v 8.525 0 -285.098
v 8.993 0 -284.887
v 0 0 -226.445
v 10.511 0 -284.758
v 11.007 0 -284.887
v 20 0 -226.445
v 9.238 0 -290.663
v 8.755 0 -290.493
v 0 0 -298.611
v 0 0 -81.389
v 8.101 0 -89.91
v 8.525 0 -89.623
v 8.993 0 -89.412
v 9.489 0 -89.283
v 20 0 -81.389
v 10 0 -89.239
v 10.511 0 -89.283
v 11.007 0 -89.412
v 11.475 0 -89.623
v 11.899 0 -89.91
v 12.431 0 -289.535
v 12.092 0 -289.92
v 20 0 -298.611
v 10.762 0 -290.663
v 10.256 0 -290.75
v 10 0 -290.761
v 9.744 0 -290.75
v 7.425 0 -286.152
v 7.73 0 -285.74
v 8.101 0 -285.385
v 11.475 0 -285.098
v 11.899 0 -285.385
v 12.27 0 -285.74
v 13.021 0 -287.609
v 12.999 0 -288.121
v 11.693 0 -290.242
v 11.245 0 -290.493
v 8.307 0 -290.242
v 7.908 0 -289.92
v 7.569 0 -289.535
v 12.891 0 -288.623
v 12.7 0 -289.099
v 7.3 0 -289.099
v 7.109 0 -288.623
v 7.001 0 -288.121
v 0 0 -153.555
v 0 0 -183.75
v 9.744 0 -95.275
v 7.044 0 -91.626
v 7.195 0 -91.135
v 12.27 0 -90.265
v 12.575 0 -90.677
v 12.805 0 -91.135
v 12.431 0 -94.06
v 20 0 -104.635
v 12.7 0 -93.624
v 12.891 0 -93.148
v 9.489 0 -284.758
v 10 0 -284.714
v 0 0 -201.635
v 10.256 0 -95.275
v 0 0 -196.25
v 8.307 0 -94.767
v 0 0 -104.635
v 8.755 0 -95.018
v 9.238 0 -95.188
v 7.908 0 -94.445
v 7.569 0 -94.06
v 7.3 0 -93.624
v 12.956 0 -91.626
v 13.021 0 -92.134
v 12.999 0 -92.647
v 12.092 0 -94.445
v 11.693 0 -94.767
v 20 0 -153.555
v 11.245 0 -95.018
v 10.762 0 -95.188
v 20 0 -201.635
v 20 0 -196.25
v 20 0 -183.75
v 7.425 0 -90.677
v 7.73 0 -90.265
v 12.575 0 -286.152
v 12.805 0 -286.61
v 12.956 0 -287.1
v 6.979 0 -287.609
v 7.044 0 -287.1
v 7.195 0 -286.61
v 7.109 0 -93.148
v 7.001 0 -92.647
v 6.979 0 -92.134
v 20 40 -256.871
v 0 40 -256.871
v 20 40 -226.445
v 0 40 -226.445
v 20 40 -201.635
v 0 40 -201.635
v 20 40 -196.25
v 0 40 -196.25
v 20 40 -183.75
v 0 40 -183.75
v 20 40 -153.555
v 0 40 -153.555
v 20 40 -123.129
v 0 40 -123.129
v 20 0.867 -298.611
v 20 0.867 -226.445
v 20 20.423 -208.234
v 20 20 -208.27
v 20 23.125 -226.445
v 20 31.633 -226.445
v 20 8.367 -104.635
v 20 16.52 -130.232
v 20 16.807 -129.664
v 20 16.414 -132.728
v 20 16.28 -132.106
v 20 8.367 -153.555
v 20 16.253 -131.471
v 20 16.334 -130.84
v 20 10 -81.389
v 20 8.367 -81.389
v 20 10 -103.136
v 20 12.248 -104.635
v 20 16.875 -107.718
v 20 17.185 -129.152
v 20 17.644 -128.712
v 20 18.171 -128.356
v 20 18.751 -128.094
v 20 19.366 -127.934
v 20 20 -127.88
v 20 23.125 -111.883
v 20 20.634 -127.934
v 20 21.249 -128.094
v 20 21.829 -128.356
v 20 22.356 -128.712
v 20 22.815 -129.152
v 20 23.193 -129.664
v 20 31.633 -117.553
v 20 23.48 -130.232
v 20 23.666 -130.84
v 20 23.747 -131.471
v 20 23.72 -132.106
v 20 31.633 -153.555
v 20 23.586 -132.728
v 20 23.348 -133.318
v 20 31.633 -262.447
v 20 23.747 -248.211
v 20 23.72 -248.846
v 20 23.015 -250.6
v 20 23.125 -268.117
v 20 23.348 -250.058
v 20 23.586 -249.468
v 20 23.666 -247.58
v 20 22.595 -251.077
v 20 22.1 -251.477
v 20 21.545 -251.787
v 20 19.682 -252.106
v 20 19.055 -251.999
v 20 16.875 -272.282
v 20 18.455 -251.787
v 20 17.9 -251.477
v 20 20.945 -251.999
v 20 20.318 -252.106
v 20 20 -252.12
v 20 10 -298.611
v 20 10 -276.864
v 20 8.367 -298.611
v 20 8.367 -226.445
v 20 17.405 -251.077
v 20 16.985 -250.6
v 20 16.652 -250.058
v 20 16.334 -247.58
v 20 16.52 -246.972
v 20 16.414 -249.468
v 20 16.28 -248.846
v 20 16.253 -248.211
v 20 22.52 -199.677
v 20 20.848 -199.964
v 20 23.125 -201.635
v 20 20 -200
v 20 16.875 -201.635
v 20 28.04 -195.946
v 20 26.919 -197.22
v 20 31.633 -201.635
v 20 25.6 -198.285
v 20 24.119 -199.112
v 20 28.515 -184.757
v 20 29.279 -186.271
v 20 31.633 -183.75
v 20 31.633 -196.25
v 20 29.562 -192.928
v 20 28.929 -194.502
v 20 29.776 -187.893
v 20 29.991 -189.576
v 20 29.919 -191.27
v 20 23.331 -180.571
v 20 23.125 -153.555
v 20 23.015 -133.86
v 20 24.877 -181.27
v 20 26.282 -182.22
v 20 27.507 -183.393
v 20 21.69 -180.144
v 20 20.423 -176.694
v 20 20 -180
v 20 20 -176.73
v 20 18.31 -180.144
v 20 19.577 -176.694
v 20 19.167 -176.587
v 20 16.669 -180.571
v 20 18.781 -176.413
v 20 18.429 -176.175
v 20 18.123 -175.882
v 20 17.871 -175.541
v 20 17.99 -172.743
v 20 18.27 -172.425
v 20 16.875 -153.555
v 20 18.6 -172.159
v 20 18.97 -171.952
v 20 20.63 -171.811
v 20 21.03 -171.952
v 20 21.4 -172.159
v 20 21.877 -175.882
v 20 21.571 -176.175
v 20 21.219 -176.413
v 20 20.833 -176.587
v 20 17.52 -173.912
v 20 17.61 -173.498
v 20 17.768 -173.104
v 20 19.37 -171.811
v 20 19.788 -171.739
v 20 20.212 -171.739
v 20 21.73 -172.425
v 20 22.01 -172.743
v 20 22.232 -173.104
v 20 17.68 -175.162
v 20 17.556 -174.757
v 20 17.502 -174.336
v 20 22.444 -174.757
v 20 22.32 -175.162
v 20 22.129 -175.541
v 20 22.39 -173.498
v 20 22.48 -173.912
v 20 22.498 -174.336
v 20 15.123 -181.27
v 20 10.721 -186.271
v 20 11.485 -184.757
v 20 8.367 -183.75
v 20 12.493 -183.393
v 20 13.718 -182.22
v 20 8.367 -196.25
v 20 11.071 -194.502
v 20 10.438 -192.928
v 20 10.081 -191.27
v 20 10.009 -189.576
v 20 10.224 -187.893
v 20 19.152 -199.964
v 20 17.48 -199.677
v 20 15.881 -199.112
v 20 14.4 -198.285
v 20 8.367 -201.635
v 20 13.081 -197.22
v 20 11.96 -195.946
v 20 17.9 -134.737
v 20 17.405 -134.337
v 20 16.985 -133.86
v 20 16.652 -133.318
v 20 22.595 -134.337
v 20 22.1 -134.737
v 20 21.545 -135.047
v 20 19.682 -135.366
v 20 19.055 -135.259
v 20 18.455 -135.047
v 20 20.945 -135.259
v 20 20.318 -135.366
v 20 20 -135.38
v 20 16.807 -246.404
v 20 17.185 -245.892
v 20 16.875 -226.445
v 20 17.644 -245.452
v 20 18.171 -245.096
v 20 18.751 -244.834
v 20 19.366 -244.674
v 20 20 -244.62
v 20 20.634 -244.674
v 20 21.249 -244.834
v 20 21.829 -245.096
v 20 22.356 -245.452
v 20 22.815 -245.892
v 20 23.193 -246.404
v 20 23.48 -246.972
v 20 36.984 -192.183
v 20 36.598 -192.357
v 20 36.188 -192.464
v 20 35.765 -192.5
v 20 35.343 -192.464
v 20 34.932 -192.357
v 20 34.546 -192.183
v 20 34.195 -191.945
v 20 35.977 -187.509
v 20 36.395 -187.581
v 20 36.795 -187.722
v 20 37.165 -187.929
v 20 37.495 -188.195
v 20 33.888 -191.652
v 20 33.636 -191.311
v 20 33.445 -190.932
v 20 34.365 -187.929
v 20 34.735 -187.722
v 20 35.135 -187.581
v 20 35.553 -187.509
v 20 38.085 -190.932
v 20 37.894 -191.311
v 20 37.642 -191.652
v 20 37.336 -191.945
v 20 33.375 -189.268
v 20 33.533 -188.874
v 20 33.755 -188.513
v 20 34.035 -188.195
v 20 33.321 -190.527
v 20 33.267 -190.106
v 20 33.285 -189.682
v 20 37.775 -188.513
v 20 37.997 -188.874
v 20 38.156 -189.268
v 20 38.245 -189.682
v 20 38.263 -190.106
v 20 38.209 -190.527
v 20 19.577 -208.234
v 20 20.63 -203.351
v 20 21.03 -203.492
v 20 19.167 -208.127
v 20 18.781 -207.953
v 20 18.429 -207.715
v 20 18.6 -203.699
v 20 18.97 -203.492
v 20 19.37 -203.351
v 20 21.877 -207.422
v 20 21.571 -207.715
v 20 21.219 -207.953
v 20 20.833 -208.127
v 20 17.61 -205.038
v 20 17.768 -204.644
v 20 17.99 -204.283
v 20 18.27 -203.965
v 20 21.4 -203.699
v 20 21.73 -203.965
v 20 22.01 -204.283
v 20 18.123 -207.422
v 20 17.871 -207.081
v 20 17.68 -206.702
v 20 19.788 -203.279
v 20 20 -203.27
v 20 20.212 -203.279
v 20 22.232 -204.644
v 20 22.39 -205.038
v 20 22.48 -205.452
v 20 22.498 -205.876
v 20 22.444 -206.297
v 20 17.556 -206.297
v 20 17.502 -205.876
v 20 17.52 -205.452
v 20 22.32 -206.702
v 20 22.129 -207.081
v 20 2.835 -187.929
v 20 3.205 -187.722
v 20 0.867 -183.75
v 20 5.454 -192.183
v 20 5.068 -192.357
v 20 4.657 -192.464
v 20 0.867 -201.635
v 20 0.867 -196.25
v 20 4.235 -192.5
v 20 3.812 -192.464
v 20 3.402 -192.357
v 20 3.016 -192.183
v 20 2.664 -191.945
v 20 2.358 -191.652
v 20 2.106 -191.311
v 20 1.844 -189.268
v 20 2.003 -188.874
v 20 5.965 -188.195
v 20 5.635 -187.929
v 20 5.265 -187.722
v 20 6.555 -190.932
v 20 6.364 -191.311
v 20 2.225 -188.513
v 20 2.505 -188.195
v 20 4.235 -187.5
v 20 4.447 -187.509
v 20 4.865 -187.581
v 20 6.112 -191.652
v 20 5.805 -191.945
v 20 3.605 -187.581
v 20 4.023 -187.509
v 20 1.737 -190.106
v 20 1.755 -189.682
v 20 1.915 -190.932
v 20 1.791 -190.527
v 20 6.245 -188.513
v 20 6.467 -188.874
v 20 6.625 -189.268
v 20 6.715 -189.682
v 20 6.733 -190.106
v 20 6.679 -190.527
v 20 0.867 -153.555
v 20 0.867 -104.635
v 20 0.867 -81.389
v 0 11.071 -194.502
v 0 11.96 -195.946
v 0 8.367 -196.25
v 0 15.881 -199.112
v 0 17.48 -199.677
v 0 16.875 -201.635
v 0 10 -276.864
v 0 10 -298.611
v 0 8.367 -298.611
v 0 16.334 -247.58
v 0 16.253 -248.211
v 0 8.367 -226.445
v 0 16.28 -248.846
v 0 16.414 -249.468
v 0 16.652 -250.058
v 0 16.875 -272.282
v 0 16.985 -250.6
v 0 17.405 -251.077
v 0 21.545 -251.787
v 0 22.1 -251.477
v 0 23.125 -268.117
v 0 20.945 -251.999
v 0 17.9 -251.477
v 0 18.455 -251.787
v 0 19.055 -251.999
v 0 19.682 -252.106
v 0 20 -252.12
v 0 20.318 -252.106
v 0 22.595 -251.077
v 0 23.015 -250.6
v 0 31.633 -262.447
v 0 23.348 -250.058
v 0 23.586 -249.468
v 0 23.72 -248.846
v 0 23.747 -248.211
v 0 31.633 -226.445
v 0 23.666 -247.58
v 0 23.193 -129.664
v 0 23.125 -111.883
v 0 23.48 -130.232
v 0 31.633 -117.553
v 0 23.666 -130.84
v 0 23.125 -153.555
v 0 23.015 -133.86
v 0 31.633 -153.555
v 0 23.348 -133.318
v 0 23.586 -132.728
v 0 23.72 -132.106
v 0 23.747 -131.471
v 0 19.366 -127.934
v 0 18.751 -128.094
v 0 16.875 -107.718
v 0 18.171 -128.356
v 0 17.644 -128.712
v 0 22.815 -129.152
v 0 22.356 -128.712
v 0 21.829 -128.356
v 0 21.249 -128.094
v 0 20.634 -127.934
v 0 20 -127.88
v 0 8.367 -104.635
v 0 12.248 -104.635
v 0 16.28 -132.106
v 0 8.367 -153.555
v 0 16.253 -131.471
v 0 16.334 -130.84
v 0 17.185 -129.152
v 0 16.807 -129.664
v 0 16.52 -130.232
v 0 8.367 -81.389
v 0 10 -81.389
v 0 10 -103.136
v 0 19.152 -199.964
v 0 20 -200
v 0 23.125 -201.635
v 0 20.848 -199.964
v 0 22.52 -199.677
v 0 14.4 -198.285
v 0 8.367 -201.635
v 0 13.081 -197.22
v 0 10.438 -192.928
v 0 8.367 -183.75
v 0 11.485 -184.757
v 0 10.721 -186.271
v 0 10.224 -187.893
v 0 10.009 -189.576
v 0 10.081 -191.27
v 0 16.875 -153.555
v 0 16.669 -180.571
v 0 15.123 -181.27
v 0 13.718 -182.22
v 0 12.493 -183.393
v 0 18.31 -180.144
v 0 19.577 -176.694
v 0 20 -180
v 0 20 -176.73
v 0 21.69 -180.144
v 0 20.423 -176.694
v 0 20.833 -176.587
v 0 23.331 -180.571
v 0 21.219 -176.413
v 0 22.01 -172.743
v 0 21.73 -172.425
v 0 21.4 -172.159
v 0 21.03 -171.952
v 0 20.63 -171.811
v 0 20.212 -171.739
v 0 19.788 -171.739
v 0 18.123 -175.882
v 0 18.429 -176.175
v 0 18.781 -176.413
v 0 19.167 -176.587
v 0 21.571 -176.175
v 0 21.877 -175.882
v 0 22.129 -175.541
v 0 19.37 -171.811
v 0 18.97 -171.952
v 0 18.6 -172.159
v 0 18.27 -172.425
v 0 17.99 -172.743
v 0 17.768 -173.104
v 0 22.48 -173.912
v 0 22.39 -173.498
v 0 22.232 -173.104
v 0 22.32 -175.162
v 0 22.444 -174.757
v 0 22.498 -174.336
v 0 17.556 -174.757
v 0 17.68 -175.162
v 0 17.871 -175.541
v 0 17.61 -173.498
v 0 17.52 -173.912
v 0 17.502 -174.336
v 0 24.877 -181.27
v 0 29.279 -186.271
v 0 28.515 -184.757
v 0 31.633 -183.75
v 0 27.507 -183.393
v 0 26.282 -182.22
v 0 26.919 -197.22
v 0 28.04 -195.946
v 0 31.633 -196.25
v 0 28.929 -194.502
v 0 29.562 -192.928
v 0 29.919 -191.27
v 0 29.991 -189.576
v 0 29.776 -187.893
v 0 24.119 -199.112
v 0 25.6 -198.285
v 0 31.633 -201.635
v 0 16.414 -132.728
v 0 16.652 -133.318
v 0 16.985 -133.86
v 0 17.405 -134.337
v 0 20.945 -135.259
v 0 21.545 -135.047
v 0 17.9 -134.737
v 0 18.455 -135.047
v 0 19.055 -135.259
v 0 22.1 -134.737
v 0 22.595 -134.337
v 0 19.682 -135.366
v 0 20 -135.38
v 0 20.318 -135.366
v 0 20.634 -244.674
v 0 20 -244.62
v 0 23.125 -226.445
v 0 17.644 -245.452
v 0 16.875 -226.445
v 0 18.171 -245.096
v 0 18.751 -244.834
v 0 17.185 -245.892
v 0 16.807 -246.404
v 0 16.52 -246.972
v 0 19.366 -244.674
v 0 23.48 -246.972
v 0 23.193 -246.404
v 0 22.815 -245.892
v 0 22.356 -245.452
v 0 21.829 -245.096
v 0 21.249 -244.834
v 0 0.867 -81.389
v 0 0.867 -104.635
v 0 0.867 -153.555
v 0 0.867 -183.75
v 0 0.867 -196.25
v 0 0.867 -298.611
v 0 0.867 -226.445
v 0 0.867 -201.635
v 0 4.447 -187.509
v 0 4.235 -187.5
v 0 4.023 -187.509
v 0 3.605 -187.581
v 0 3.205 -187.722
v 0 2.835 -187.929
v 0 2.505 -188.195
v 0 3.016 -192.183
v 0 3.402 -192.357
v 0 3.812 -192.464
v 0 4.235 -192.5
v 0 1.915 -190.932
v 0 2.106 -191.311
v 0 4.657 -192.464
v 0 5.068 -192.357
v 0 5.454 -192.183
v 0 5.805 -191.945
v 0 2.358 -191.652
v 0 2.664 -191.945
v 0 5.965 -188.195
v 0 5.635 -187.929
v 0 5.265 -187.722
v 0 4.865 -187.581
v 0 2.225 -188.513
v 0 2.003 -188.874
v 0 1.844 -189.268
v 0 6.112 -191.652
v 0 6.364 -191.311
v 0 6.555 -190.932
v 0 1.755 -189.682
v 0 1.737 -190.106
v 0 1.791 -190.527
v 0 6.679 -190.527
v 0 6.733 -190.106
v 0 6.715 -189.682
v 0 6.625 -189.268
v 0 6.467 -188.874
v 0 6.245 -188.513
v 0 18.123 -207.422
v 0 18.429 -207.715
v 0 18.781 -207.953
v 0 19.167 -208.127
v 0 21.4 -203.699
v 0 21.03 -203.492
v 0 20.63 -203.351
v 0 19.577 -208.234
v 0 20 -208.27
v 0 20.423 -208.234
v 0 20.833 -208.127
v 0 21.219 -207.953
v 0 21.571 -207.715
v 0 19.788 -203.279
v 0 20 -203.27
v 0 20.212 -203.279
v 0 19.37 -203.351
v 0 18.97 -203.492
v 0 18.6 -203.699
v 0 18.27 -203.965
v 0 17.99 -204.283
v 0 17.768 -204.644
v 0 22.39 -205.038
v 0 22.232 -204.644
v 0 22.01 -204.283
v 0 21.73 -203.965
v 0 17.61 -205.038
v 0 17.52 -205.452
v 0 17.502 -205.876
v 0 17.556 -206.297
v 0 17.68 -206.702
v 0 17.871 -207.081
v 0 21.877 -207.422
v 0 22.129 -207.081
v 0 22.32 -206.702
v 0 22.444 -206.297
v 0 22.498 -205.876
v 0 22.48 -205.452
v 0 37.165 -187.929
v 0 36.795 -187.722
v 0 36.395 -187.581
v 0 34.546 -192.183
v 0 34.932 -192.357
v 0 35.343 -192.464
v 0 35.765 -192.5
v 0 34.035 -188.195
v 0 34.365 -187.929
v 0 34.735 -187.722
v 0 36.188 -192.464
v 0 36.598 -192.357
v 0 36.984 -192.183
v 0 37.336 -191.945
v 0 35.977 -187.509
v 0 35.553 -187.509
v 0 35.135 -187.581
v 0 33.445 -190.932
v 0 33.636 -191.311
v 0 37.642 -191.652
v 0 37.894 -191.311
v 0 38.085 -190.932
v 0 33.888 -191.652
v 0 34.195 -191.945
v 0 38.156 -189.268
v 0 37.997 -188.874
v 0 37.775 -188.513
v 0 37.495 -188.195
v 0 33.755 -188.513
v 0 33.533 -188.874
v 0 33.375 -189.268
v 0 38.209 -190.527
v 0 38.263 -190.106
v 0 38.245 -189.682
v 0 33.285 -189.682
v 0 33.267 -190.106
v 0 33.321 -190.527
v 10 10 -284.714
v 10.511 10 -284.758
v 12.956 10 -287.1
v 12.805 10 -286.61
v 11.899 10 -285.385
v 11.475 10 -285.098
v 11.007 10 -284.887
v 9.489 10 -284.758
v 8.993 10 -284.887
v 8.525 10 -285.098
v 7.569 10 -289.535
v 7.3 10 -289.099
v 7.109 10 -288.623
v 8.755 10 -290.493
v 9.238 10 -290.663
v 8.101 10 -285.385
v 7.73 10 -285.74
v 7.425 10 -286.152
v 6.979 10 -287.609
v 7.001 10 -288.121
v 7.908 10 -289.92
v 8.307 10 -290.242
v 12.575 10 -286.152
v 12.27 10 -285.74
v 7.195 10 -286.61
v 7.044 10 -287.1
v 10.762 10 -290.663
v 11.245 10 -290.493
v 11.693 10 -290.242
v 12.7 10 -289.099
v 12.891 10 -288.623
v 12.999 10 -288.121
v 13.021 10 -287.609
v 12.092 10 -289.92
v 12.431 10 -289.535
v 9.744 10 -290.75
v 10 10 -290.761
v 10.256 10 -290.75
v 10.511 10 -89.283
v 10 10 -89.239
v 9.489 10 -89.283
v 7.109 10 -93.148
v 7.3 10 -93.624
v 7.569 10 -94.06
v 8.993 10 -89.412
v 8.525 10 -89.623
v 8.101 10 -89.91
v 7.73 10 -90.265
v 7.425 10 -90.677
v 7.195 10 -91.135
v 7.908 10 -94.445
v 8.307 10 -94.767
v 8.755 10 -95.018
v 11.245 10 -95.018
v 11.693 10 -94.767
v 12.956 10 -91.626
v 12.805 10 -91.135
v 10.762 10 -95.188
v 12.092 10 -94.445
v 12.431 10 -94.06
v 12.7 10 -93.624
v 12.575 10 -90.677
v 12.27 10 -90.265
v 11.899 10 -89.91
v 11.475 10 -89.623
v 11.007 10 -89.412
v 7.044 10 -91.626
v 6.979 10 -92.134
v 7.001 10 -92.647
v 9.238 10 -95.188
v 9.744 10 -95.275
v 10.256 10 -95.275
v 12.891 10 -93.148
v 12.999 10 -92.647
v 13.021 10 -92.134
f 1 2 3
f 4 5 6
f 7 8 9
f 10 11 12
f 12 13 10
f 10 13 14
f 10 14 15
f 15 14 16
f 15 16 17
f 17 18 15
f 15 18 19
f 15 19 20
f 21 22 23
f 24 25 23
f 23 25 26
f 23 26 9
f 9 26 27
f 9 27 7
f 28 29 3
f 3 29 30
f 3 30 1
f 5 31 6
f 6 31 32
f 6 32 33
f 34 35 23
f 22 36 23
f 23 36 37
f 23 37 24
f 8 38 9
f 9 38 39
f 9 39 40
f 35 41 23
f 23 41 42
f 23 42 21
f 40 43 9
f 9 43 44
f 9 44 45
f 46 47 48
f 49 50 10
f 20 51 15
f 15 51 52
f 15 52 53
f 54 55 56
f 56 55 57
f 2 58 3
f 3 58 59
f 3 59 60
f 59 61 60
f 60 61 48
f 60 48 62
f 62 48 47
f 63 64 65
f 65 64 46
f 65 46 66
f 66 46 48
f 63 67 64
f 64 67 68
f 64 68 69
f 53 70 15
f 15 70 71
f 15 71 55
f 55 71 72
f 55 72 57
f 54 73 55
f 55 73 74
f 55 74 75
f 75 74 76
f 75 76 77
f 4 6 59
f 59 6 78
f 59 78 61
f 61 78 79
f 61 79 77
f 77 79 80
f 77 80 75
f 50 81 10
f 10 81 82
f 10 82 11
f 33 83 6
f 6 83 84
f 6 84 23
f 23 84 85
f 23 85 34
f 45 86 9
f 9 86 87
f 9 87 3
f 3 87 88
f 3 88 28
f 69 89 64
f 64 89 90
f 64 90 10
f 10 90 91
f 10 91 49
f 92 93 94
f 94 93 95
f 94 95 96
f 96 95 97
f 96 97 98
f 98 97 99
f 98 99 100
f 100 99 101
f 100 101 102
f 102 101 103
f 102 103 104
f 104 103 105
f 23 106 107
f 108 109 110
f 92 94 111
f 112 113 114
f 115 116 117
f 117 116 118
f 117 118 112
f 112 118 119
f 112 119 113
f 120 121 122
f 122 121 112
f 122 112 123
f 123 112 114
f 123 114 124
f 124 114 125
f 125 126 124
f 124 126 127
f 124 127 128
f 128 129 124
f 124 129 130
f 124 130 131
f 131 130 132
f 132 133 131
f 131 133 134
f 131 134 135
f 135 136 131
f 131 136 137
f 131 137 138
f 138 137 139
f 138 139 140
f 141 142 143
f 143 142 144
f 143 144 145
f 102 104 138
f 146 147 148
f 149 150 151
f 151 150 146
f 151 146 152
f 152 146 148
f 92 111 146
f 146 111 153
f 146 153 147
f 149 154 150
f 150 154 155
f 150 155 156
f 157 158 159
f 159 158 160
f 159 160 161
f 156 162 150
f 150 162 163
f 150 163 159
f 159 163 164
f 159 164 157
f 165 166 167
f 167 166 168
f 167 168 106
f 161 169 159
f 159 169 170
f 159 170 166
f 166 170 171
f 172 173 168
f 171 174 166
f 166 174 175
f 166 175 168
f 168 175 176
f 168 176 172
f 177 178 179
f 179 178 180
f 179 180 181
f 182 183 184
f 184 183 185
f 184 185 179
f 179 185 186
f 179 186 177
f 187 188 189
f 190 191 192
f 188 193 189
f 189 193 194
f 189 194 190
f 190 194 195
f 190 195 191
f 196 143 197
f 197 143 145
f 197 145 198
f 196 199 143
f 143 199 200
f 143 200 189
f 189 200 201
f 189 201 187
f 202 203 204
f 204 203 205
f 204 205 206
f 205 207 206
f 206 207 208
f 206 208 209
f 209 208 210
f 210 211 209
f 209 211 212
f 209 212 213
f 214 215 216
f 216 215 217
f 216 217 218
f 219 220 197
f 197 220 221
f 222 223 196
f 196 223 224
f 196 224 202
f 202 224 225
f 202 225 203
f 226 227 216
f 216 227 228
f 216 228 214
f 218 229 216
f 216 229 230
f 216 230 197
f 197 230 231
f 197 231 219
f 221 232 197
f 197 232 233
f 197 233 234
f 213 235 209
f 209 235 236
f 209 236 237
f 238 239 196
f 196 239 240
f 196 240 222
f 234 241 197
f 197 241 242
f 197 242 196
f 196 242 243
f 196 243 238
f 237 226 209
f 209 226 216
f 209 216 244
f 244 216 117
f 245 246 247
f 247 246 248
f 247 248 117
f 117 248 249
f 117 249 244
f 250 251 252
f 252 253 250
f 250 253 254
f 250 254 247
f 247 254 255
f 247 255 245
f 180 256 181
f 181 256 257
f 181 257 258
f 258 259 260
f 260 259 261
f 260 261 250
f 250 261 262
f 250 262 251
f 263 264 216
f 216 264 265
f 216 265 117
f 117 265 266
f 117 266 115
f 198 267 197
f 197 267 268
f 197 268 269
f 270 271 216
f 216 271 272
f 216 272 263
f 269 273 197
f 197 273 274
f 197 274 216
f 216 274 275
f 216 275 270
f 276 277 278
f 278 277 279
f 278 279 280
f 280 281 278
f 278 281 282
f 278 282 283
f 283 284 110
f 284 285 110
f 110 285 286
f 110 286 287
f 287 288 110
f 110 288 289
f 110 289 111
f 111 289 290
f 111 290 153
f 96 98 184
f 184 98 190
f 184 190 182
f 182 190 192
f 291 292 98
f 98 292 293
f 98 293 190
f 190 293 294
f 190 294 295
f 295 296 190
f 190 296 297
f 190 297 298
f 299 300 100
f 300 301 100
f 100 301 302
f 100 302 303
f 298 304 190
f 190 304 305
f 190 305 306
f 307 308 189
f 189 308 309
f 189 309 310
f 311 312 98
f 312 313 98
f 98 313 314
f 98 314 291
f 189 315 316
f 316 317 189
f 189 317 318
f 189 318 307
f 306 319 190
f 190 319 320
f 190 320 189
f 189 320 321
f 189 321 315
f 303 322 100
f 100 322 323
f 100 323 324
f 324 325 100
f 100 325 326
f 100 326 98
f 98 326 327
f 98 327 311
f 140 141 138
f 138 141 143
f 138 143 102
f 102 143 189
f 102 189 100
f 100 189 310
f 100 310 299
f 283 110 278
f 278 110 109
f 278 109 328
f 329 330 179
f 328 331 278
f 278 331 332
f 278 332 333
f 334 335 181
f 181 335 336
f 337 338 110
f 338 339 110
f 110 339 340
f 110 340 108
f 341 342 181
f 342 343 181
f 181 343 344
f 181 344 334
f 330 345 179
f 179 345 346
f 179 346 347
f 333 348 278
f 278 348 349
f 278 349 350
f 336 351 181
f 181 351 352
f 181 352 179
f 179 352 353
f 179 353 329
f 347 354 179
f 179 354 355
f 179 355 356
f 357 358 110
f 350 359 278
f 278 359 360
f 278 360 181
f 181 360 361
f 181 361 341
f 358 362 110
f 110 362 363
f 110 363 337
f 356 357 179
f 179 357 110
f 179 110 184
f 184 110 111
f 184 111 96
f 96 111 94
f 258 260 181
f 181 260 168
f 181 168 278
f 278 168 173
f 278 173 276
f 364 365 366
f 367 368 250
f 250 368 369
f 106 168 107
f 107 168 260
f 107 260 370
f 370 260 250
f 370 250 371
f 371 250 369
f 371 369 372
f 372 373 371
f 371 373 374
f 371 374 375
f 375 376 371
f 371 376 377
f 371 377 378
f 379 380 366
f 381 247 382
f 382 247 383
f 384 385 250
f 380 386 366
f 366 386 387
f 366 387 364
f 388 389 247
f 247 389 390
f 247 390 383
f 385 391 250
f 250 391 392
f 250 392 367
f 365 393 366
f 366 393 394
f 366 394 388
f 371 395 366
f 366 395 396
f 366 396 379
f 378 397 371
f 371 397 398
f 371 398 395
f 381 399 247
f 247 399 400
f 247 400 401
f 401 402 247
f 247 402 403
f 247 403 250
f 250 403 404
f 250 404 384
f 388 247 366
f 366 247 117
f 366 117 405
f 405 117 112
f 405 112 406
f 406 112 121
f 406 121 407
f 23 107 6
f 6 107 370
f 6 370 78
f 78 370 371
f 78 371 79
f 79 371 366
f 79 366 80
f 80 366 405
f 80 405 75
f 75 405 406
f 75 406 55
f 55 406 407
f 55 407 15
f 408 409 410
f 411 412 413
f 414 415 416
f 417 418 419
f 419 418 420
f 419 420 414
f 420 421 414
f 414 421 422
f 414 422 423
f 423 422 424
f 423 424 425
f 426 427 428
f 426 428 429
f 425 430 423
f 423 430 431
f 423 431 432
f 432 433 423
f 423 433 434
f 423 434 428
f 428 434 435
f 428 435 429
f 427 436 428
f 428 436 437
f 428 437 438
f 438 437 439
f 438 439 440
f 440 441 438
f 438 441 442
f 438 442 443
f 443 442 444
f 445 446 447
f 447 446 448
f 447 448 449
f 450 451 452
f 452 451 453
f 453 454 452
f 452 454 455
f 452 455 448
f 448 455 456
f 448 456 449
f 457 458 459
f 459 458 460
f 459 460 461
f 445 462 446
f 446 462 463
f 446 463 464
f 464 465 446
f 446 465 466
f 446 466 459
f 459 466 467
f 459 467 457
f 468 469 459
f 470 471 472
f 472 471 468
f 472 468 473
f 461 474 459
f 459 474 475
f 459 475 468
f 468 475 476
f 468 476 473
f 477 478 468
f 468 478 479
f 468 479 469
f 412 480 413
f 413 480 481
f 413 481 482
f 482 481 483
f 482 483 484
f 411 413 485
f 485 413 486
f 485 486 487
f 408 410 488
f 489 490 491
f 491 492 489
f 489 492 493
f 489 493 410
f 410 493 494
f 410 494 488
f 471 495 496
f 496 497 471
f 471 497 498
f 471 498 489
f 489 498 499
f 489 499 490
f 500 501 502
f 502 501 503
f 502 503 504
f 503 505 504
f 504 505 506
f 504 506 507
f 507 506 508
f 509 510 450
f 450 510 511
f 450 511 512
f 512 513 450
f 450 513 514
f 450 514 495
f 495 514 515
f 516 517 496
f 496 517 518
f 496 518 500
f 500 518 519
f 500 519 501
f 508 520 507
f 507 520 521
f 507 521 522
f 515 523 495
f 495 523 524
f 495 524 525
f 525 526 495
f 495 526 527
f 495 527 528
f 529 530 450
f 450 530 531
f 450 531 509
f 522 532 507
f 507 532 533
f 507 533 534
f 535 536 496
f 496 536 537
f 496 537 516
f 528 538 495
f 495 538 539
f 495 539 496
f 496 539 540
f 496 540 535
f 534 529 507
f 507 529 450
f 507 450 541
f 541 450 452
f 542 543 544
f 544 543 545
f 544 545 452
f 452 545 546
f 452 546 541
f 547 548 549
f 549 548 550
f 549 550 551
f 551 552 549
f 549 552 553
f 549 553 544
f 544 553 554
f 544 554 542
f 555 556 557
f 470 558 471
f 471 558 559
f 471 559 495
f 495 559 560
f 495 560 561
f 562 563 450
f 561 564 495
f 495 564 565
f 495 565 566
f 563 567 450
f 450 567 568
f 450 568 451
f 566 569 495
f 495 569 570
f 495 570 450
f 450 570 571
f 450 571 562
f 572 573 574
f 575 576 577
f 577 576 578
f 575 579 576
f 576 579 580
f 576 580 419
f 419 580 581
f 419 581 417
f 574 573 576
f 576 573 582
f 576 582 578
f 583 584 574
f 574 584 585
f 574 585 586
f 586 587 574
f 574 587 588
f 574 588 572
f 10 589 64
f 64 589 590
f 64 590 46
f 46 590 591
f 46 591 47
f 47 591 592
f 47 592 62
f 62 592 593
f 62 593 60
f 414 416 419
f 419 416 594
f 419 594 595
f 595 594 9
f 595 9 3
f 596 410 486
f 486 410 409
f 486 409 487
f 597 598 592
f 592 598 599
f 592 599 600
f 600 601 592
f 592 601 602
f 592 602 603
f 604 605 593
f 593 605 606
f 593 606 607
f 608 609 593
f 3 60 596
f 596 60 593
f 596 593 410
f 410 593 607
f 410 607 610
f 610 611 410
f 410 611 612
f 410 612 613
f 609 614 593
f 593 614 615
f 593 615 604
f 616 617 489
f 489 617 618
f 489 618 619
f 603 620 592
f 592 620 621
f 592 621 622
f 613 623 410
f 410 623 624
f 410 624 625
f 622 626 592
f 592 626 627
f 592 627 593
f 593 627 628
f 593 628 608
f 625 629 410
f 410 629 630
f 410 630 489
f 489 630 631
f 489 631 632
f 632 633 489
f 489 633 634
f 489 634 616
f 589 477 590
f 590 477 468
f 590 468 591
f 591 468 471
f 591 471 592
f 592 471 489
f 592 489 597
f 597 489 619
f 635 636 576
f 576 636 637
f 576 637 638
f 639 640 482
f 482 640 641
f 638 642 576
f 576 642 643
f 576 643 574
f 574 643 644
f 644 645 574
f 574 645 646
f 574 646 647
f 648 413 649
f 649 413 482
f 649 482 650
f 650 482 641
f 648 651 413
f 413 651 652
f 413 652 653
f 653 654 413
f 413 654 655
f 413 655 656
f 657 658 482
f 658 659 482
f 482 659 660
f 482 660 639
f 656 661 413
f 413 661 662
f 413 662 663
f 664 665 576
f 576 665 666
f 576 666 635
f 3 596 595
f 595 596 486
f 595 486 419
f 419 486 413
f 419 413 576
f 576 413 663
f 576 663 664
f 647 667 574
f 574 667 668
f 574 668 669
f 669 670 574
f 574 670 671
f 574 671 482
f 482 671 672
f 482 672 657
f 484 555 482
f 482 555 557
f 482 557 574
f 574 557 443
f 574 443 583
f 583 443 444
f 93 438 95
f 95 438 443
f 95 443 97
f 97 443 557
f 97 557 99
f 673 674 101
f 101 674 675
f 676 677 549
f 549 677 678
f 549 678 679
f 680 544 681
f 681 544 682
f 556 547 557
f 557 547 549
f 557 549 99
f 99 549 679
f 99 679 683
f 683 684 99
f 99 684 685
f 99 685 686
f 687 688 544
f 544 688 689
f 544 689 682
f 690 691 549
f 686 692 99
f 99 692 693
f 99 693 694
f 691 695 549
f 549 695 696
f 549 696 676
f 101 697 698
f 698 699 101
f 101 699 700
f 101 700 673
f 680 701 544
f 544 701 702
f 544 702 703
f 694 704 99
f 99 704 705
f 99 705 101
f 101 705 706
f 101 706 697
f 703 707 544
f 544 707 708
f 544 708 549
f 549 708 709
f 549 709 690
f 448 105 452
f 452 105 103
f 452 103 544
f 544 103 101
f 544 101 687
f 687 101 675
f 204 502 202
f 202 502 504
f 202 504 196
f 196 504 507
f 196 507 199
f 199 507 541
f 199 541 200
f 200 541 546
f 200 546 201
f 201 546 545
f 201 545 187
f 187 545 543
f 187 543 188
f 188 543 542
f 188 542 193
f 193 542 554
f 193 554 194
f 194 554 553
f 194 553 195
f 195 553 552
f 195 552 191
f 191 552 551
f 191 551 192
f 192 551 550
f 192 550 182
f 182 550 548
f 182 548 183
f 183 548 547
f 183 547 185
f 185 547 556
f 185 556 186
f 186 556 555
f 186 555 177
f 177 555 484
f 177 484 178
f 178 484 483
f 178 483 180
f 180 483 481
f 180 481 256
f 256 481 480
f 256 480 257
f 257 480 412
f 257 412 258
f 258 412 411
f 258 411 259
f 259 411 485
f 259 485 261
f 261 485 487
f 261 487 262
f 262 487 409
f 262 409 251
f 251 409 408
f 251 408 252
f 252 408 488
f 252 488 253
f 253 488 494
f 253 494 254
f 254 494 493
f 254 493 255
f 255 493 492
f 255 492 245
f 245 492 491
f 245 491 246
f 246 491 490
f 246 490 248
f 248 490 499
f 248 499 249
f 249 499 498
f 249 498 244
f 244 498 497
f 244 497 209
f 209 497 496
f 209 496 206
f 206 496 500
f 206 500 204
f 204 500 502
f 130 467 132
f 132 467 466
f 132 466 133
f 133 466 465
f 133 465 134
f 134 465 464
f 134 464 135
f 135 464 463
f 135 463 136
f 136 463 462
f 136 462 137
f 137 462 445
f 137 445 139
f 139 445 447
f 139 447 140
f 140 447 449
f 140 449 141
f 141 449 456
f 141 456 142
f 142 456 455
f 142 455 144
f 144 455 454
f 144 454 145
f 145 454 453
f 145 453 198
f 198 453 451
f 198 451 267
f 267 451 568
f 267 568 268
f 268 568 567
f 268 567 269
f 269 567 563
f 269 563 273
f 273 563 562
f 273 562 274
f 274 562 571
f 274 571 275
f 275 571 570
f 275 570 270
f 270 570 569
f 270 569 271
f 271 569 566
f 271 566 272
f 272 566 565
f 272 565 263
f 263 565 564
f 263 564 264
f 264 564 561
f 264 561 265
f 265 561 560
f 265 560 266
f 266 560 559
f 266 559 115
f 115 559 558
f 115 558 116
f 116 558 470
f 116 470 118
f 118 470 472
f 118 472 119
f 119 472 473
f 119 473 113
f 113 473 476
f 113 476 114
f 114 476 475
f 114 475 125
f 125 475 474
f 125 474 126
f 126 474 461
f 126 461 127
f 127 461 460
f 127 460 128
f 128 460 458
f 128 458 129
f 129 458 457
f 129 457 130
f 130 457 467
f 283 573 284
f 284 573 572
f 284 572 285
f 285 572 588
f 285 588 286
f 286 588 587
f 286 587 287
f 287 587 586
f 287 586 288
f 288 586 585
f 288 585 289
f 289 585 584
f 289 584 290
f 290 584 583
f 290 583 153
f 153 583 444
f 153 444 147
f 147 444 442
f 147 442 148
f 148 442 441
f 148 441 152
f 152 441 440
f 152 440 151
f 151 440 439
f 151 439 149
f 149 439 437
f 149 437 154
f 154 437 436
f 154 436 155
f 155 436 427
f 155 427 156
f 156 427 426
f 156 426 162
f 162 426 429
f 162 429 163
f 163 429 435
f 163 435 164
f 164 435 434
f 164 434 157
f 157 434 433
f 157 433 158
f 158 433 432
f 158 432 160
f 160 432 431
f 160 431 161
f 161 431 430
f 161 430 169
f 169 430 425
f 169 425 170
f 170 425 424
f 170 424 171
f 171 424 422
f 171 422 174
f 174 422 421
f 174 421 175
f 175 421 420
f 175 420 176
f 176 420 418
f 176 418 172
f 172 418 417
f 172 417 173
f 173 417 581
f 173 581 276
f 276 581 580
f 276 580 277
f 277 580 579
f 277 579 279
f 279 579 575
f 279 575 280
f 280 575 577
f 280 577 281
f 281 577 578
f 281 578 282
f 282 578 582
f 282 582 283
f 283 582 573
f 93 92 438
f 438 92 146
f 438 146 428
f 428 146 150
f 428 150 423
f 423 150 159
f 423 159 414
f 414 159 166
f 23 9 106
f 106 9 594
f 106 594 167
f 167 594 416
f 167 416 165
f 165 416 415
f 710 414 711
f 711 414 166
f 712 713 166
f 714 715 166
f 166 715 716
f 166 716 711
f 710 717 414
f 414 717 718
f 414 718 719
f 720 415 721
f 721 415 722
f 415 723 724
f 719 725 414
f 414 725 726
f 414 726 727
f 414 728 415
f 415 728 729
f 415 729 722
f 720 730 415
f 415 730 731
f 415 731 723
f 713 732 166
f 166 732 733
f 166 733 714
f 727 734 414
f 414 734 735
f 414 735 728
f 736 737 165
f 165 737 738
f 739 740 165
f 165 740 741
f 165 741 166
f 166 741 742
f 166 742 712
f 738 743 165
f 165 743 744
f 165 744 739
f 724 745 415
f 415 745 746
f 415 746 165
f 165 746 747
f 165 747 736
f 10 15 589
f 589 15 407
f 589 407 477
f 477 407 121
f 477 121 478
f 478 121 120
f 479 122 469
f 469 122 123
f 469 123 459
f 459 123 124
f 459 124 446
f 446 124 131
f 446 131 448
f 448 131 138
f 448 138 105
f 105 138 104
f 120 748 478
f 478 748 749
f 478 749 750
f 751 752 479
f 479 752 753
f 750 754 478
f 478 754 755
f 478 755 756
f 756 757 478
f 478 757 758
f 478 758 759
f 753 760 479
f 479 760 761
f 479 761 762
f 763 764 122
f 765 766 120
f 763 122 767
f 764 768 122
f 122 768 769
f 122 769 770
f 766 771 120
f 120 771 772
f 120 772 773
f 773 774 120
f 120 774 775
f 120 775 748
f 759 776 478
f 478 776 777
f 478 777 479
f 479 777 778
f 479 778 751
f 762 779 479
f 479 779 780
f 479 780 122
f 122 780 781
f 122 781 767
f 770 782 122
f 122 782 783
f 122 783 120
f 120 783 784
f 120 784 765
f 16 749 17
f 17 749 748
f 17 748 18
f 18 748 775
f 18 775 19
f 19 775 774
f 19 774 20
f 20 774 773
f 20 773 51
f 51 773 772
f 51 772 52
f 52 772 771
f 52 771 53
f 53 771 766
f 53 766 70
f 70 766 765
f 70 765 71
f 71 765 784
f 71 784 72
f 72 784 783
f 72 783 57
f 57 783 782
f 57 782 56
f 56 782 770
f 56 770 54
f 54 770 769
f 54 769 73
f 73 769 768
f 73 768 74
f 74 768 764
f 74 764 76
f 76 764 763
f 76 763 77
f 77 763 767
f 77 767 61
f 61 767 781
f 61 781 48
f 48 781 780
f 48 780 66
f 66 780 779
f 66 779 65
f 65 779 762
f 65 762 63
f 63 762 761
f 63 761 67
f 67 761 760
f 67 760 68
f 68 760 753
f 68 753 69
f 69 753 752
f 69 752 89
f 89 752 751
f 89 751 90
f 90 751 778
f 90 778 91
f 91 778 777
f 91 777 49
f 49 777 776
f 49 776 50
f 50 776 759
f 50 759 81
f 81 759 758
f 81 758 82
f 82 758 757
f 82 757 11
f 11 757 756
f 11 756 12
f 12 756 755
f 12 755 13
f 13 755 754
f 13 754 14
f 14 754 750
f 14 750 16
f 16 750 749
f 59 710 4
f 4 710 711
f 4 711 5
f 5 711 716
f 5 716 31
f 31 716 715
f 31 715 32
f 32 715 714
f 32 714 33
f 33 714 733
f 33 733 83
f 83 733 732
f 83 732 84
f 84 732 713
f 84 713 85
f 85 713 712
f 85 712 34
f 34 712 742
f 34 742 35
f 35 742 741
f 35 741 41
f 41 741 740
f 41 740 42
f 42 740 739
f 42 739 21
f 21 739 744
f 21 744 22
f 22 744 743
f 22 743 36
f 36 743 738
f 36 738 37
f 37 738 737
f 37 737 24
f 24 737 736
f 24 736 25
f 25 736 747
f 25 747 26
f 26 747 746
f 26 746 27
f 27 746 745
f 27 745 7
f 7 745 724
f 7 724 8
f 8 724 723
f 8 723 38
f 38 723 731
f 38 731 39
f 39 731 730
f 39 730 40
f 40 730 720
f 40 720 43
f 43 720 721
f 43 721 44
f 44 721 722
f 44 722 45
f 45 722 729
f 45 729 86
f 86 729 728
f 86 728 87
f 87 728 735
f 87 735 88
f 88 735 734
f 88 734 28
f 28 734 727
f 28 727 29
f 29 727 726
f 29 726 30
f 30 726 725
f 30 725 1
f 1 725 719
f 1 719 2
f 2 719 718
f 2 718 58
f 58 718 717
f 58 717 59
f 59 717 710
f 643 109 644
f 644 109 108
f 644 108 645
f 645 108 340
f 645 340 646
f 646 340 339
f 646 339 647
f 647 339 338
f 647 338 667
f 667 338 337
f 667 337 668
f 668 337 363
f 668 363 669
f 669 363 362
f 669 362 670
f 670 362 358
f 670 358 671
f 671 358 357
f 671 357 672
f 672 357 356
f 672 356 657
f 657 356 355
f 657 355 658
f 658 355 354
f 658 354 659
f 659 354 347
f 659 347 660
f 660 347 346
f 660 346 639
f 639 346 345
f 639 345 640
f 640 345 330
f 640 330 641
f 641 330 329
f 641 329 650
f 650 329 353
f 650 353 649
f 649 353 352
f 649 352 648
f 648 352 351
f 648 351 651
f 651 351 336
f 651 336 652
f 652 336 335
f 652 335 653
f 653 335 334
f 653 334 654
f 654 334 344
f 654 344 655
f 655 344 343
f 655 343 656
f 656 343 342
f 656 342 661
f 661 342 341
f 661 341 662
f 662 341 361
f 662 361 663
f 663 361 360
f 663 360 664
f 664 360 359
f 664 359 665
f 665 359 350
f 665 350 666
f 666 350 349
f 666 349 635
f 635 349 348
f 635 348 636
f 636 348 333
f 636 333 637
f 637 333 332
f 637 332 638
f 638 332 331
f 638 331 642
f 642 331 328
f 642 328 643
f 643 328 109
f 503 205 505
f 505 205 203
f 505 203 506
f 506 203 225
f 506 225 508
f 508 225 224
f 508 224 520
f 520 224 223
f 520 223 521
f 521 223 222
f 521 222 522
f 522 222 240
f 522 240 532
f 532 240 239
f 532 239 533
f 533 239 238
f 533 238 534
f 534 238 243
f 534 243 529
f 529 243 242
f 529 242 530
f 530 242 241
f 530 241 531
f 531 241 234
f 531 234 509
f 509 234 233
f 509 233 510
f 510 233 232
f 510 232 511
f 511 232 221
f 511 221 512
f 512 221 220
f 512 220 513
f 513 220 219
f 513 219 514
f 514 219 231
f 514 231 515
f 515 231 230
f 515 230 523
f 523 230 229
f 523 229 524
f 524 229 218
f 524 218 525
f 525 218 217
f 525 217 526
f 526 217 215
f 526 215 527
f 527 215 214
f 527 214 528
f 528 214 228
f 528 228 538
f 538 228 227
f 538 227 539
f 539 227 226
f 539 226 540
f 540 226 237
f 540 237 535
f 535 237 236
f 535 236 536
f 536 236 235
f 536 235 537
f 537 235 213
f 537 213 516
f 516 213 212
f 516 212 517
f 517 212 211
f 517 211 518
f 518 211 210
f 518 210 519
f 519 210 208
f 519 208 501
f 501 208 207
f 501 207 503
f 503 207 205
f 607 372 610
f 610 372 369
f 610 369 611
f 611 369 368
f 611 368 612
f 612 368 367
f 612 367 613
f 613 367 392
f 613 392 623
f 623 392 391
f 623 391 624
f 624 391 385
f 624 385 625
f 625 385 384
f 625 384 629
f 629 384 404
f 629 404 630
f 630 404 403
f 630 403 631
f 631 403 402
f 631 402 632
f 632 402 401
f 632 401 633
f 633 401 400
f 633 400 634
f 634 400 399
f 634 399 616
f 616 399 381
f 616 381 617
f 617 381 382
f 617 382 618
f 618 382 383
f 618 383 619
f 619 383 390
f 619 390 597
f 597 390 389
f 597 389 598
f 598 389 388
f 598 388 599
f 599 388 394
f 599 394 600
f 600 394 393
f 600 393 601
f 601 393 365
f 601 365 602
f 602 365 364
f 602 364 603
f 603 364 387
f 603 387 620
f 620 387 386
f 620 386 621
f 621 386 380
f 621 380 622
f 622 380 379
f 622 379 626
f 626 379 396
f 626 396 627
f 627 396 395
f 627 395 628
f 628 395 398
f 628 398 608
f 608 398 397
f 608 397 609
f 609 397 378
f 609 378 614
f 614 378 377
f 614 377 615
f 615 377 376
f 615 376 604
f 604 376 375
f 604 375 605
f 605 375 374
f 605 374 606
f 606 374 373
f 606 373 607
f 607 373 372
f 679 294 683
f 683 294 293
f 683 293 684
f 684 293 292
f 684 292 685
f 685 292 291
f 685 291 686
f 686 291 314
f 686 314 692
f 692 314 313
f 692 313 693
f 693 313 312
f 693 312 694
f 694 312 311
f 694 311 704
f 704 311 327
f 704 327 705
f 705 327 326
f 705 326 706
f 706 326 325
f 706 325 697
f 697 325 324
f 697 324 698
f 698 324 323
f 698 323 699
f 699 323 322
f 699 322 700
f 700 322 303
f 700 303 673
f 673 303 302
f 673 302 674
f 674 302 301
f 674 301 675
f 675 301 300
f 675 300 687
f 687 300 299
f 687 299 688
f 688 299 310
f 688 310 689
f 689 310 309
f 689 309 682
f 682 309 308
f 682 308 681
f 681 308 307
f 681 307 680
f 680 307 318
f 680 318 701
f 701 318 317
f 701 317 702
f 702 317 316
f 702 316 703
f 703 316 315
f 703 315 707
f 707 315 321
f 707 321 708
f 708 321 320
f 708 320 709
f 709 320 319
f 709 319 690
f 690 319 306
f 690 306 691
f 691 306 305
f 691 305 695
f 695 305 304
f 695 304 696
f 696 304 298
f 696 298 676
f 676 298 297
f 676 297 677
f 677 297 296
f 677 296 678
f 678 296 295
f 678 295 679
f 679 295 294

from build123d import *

# Parameters (mm, degrees)
SKETCH2_W               = 380
SKETCH2_H               = 40
SKETCH2_R               = 10
SKETCH2_R_2             = 3.75
BOSS_EXTRUDE2_DEPTH     = 20
CUT_EXTRUDE1_DEPTH      = 100
CUT_EXTRUDE2_DEPTH      = 301.779846116
CUT_EXTRUDE2_DEPTH_BACK = 301.779846116
SKETCH5_R               = 3.023423491
SKETCH8_R               = 2.5
CUT_EXTRUDE3_DEPTH      = 302.941245658


with BuildPart() as part:
    # Sketch2 → Boss-Extrude2 (new body)
    with BuildSketch(Plane(origin=(0, 0, 0), x_dir=(0, 0, -1), z_dir=(1, 0, 0))):
        with Locations((190, 20)):
            Rectangle(SKETCH2_W, SKETCH2_H)
        with Locations((190, 20)):
            Circle(SKETCH2_R, mode=Mode.SUBTRACT)
        with Locations((131.63, 20)):
            Circle(SKETCH2_R_2, mode=Mode.SUBTRACT)
        with Locations((248.37, 20)):
            Circle(SKETCH2_R_2, mode=Mode.SUBTRACT)
    extrude(amount=BOSS_EXTRUDE2_DEPTH)

    # Sketch4 → Cut-Extrude1 (cut)
    with BuildSketch(Plane(origin=(20, 0, 0), x_dir=(0, 0, -1), z_dir=(1, 0, 0))):
        Polygon((123.129236316, 40), (0, 40), (0, 0), (81.389022591, 0), (81.389022591, 10), (103.1360247, 10), align=None)
        Polygon((298.610977409, 10), (298.610977409, 0), (380, 0), (380, 40), (256.870763684, 40), (276.8639753, 10), align=None)
    extrude(amount=-CUT_EXTRUDE1_DEPTH, mode=Mode.SUBTRACT)

    # Sketch5 → Cut-Extrude2 (cut, two sides: drawn at the far end of the back side and taken through both)
    with BuildSketch(Plane(origin=(0, 10, 0), x_dir=(1, 0, 0), z_dir=(0, 1, 0)).offset(-CUT_EXTRUDE2_DEPTH_BACK)):
        with Locations(Location((10, 92.262523645, 0), (0, 0, 270))):
            Circle(SKETCH5_R)
        with Locations(Location((10, 287.737476355, 0), (0, 0, 90))):
            Circle(SKETCH5_R)
    extrude(amount=CUT_EXTRUDE2_DEPTH + CUT_EXTRUDE2_DEPTH_BACK, mode=Mode.SUBTRACT)

    # Sketch8 → Cut-Extrude3 (cut, through all)
    with BuildSketch(Plane(origin=(20, 0, 0), x_dir=(0, 0, -1), z_dir=(1, 0, 0))):
        with Locations((190, 35.7650867)):
            Circle(SKETCH8_R)
        with Locations(Location((190, 4.2349133, 0), (0, 0, 180))):
            Circle(SKETCH8_R)
        with Locations((174.23, 20)):
            Circle(SKETCH8_R)
        with Locations(Location((205.77, 20, 0), (0, 0, 180))):
            Circle(SKETCH8_R)
    extrude(amount=-CUT_EXTRUDE3_DEPTH, mode=Mode.SUBTRACT)


solid = part.part
